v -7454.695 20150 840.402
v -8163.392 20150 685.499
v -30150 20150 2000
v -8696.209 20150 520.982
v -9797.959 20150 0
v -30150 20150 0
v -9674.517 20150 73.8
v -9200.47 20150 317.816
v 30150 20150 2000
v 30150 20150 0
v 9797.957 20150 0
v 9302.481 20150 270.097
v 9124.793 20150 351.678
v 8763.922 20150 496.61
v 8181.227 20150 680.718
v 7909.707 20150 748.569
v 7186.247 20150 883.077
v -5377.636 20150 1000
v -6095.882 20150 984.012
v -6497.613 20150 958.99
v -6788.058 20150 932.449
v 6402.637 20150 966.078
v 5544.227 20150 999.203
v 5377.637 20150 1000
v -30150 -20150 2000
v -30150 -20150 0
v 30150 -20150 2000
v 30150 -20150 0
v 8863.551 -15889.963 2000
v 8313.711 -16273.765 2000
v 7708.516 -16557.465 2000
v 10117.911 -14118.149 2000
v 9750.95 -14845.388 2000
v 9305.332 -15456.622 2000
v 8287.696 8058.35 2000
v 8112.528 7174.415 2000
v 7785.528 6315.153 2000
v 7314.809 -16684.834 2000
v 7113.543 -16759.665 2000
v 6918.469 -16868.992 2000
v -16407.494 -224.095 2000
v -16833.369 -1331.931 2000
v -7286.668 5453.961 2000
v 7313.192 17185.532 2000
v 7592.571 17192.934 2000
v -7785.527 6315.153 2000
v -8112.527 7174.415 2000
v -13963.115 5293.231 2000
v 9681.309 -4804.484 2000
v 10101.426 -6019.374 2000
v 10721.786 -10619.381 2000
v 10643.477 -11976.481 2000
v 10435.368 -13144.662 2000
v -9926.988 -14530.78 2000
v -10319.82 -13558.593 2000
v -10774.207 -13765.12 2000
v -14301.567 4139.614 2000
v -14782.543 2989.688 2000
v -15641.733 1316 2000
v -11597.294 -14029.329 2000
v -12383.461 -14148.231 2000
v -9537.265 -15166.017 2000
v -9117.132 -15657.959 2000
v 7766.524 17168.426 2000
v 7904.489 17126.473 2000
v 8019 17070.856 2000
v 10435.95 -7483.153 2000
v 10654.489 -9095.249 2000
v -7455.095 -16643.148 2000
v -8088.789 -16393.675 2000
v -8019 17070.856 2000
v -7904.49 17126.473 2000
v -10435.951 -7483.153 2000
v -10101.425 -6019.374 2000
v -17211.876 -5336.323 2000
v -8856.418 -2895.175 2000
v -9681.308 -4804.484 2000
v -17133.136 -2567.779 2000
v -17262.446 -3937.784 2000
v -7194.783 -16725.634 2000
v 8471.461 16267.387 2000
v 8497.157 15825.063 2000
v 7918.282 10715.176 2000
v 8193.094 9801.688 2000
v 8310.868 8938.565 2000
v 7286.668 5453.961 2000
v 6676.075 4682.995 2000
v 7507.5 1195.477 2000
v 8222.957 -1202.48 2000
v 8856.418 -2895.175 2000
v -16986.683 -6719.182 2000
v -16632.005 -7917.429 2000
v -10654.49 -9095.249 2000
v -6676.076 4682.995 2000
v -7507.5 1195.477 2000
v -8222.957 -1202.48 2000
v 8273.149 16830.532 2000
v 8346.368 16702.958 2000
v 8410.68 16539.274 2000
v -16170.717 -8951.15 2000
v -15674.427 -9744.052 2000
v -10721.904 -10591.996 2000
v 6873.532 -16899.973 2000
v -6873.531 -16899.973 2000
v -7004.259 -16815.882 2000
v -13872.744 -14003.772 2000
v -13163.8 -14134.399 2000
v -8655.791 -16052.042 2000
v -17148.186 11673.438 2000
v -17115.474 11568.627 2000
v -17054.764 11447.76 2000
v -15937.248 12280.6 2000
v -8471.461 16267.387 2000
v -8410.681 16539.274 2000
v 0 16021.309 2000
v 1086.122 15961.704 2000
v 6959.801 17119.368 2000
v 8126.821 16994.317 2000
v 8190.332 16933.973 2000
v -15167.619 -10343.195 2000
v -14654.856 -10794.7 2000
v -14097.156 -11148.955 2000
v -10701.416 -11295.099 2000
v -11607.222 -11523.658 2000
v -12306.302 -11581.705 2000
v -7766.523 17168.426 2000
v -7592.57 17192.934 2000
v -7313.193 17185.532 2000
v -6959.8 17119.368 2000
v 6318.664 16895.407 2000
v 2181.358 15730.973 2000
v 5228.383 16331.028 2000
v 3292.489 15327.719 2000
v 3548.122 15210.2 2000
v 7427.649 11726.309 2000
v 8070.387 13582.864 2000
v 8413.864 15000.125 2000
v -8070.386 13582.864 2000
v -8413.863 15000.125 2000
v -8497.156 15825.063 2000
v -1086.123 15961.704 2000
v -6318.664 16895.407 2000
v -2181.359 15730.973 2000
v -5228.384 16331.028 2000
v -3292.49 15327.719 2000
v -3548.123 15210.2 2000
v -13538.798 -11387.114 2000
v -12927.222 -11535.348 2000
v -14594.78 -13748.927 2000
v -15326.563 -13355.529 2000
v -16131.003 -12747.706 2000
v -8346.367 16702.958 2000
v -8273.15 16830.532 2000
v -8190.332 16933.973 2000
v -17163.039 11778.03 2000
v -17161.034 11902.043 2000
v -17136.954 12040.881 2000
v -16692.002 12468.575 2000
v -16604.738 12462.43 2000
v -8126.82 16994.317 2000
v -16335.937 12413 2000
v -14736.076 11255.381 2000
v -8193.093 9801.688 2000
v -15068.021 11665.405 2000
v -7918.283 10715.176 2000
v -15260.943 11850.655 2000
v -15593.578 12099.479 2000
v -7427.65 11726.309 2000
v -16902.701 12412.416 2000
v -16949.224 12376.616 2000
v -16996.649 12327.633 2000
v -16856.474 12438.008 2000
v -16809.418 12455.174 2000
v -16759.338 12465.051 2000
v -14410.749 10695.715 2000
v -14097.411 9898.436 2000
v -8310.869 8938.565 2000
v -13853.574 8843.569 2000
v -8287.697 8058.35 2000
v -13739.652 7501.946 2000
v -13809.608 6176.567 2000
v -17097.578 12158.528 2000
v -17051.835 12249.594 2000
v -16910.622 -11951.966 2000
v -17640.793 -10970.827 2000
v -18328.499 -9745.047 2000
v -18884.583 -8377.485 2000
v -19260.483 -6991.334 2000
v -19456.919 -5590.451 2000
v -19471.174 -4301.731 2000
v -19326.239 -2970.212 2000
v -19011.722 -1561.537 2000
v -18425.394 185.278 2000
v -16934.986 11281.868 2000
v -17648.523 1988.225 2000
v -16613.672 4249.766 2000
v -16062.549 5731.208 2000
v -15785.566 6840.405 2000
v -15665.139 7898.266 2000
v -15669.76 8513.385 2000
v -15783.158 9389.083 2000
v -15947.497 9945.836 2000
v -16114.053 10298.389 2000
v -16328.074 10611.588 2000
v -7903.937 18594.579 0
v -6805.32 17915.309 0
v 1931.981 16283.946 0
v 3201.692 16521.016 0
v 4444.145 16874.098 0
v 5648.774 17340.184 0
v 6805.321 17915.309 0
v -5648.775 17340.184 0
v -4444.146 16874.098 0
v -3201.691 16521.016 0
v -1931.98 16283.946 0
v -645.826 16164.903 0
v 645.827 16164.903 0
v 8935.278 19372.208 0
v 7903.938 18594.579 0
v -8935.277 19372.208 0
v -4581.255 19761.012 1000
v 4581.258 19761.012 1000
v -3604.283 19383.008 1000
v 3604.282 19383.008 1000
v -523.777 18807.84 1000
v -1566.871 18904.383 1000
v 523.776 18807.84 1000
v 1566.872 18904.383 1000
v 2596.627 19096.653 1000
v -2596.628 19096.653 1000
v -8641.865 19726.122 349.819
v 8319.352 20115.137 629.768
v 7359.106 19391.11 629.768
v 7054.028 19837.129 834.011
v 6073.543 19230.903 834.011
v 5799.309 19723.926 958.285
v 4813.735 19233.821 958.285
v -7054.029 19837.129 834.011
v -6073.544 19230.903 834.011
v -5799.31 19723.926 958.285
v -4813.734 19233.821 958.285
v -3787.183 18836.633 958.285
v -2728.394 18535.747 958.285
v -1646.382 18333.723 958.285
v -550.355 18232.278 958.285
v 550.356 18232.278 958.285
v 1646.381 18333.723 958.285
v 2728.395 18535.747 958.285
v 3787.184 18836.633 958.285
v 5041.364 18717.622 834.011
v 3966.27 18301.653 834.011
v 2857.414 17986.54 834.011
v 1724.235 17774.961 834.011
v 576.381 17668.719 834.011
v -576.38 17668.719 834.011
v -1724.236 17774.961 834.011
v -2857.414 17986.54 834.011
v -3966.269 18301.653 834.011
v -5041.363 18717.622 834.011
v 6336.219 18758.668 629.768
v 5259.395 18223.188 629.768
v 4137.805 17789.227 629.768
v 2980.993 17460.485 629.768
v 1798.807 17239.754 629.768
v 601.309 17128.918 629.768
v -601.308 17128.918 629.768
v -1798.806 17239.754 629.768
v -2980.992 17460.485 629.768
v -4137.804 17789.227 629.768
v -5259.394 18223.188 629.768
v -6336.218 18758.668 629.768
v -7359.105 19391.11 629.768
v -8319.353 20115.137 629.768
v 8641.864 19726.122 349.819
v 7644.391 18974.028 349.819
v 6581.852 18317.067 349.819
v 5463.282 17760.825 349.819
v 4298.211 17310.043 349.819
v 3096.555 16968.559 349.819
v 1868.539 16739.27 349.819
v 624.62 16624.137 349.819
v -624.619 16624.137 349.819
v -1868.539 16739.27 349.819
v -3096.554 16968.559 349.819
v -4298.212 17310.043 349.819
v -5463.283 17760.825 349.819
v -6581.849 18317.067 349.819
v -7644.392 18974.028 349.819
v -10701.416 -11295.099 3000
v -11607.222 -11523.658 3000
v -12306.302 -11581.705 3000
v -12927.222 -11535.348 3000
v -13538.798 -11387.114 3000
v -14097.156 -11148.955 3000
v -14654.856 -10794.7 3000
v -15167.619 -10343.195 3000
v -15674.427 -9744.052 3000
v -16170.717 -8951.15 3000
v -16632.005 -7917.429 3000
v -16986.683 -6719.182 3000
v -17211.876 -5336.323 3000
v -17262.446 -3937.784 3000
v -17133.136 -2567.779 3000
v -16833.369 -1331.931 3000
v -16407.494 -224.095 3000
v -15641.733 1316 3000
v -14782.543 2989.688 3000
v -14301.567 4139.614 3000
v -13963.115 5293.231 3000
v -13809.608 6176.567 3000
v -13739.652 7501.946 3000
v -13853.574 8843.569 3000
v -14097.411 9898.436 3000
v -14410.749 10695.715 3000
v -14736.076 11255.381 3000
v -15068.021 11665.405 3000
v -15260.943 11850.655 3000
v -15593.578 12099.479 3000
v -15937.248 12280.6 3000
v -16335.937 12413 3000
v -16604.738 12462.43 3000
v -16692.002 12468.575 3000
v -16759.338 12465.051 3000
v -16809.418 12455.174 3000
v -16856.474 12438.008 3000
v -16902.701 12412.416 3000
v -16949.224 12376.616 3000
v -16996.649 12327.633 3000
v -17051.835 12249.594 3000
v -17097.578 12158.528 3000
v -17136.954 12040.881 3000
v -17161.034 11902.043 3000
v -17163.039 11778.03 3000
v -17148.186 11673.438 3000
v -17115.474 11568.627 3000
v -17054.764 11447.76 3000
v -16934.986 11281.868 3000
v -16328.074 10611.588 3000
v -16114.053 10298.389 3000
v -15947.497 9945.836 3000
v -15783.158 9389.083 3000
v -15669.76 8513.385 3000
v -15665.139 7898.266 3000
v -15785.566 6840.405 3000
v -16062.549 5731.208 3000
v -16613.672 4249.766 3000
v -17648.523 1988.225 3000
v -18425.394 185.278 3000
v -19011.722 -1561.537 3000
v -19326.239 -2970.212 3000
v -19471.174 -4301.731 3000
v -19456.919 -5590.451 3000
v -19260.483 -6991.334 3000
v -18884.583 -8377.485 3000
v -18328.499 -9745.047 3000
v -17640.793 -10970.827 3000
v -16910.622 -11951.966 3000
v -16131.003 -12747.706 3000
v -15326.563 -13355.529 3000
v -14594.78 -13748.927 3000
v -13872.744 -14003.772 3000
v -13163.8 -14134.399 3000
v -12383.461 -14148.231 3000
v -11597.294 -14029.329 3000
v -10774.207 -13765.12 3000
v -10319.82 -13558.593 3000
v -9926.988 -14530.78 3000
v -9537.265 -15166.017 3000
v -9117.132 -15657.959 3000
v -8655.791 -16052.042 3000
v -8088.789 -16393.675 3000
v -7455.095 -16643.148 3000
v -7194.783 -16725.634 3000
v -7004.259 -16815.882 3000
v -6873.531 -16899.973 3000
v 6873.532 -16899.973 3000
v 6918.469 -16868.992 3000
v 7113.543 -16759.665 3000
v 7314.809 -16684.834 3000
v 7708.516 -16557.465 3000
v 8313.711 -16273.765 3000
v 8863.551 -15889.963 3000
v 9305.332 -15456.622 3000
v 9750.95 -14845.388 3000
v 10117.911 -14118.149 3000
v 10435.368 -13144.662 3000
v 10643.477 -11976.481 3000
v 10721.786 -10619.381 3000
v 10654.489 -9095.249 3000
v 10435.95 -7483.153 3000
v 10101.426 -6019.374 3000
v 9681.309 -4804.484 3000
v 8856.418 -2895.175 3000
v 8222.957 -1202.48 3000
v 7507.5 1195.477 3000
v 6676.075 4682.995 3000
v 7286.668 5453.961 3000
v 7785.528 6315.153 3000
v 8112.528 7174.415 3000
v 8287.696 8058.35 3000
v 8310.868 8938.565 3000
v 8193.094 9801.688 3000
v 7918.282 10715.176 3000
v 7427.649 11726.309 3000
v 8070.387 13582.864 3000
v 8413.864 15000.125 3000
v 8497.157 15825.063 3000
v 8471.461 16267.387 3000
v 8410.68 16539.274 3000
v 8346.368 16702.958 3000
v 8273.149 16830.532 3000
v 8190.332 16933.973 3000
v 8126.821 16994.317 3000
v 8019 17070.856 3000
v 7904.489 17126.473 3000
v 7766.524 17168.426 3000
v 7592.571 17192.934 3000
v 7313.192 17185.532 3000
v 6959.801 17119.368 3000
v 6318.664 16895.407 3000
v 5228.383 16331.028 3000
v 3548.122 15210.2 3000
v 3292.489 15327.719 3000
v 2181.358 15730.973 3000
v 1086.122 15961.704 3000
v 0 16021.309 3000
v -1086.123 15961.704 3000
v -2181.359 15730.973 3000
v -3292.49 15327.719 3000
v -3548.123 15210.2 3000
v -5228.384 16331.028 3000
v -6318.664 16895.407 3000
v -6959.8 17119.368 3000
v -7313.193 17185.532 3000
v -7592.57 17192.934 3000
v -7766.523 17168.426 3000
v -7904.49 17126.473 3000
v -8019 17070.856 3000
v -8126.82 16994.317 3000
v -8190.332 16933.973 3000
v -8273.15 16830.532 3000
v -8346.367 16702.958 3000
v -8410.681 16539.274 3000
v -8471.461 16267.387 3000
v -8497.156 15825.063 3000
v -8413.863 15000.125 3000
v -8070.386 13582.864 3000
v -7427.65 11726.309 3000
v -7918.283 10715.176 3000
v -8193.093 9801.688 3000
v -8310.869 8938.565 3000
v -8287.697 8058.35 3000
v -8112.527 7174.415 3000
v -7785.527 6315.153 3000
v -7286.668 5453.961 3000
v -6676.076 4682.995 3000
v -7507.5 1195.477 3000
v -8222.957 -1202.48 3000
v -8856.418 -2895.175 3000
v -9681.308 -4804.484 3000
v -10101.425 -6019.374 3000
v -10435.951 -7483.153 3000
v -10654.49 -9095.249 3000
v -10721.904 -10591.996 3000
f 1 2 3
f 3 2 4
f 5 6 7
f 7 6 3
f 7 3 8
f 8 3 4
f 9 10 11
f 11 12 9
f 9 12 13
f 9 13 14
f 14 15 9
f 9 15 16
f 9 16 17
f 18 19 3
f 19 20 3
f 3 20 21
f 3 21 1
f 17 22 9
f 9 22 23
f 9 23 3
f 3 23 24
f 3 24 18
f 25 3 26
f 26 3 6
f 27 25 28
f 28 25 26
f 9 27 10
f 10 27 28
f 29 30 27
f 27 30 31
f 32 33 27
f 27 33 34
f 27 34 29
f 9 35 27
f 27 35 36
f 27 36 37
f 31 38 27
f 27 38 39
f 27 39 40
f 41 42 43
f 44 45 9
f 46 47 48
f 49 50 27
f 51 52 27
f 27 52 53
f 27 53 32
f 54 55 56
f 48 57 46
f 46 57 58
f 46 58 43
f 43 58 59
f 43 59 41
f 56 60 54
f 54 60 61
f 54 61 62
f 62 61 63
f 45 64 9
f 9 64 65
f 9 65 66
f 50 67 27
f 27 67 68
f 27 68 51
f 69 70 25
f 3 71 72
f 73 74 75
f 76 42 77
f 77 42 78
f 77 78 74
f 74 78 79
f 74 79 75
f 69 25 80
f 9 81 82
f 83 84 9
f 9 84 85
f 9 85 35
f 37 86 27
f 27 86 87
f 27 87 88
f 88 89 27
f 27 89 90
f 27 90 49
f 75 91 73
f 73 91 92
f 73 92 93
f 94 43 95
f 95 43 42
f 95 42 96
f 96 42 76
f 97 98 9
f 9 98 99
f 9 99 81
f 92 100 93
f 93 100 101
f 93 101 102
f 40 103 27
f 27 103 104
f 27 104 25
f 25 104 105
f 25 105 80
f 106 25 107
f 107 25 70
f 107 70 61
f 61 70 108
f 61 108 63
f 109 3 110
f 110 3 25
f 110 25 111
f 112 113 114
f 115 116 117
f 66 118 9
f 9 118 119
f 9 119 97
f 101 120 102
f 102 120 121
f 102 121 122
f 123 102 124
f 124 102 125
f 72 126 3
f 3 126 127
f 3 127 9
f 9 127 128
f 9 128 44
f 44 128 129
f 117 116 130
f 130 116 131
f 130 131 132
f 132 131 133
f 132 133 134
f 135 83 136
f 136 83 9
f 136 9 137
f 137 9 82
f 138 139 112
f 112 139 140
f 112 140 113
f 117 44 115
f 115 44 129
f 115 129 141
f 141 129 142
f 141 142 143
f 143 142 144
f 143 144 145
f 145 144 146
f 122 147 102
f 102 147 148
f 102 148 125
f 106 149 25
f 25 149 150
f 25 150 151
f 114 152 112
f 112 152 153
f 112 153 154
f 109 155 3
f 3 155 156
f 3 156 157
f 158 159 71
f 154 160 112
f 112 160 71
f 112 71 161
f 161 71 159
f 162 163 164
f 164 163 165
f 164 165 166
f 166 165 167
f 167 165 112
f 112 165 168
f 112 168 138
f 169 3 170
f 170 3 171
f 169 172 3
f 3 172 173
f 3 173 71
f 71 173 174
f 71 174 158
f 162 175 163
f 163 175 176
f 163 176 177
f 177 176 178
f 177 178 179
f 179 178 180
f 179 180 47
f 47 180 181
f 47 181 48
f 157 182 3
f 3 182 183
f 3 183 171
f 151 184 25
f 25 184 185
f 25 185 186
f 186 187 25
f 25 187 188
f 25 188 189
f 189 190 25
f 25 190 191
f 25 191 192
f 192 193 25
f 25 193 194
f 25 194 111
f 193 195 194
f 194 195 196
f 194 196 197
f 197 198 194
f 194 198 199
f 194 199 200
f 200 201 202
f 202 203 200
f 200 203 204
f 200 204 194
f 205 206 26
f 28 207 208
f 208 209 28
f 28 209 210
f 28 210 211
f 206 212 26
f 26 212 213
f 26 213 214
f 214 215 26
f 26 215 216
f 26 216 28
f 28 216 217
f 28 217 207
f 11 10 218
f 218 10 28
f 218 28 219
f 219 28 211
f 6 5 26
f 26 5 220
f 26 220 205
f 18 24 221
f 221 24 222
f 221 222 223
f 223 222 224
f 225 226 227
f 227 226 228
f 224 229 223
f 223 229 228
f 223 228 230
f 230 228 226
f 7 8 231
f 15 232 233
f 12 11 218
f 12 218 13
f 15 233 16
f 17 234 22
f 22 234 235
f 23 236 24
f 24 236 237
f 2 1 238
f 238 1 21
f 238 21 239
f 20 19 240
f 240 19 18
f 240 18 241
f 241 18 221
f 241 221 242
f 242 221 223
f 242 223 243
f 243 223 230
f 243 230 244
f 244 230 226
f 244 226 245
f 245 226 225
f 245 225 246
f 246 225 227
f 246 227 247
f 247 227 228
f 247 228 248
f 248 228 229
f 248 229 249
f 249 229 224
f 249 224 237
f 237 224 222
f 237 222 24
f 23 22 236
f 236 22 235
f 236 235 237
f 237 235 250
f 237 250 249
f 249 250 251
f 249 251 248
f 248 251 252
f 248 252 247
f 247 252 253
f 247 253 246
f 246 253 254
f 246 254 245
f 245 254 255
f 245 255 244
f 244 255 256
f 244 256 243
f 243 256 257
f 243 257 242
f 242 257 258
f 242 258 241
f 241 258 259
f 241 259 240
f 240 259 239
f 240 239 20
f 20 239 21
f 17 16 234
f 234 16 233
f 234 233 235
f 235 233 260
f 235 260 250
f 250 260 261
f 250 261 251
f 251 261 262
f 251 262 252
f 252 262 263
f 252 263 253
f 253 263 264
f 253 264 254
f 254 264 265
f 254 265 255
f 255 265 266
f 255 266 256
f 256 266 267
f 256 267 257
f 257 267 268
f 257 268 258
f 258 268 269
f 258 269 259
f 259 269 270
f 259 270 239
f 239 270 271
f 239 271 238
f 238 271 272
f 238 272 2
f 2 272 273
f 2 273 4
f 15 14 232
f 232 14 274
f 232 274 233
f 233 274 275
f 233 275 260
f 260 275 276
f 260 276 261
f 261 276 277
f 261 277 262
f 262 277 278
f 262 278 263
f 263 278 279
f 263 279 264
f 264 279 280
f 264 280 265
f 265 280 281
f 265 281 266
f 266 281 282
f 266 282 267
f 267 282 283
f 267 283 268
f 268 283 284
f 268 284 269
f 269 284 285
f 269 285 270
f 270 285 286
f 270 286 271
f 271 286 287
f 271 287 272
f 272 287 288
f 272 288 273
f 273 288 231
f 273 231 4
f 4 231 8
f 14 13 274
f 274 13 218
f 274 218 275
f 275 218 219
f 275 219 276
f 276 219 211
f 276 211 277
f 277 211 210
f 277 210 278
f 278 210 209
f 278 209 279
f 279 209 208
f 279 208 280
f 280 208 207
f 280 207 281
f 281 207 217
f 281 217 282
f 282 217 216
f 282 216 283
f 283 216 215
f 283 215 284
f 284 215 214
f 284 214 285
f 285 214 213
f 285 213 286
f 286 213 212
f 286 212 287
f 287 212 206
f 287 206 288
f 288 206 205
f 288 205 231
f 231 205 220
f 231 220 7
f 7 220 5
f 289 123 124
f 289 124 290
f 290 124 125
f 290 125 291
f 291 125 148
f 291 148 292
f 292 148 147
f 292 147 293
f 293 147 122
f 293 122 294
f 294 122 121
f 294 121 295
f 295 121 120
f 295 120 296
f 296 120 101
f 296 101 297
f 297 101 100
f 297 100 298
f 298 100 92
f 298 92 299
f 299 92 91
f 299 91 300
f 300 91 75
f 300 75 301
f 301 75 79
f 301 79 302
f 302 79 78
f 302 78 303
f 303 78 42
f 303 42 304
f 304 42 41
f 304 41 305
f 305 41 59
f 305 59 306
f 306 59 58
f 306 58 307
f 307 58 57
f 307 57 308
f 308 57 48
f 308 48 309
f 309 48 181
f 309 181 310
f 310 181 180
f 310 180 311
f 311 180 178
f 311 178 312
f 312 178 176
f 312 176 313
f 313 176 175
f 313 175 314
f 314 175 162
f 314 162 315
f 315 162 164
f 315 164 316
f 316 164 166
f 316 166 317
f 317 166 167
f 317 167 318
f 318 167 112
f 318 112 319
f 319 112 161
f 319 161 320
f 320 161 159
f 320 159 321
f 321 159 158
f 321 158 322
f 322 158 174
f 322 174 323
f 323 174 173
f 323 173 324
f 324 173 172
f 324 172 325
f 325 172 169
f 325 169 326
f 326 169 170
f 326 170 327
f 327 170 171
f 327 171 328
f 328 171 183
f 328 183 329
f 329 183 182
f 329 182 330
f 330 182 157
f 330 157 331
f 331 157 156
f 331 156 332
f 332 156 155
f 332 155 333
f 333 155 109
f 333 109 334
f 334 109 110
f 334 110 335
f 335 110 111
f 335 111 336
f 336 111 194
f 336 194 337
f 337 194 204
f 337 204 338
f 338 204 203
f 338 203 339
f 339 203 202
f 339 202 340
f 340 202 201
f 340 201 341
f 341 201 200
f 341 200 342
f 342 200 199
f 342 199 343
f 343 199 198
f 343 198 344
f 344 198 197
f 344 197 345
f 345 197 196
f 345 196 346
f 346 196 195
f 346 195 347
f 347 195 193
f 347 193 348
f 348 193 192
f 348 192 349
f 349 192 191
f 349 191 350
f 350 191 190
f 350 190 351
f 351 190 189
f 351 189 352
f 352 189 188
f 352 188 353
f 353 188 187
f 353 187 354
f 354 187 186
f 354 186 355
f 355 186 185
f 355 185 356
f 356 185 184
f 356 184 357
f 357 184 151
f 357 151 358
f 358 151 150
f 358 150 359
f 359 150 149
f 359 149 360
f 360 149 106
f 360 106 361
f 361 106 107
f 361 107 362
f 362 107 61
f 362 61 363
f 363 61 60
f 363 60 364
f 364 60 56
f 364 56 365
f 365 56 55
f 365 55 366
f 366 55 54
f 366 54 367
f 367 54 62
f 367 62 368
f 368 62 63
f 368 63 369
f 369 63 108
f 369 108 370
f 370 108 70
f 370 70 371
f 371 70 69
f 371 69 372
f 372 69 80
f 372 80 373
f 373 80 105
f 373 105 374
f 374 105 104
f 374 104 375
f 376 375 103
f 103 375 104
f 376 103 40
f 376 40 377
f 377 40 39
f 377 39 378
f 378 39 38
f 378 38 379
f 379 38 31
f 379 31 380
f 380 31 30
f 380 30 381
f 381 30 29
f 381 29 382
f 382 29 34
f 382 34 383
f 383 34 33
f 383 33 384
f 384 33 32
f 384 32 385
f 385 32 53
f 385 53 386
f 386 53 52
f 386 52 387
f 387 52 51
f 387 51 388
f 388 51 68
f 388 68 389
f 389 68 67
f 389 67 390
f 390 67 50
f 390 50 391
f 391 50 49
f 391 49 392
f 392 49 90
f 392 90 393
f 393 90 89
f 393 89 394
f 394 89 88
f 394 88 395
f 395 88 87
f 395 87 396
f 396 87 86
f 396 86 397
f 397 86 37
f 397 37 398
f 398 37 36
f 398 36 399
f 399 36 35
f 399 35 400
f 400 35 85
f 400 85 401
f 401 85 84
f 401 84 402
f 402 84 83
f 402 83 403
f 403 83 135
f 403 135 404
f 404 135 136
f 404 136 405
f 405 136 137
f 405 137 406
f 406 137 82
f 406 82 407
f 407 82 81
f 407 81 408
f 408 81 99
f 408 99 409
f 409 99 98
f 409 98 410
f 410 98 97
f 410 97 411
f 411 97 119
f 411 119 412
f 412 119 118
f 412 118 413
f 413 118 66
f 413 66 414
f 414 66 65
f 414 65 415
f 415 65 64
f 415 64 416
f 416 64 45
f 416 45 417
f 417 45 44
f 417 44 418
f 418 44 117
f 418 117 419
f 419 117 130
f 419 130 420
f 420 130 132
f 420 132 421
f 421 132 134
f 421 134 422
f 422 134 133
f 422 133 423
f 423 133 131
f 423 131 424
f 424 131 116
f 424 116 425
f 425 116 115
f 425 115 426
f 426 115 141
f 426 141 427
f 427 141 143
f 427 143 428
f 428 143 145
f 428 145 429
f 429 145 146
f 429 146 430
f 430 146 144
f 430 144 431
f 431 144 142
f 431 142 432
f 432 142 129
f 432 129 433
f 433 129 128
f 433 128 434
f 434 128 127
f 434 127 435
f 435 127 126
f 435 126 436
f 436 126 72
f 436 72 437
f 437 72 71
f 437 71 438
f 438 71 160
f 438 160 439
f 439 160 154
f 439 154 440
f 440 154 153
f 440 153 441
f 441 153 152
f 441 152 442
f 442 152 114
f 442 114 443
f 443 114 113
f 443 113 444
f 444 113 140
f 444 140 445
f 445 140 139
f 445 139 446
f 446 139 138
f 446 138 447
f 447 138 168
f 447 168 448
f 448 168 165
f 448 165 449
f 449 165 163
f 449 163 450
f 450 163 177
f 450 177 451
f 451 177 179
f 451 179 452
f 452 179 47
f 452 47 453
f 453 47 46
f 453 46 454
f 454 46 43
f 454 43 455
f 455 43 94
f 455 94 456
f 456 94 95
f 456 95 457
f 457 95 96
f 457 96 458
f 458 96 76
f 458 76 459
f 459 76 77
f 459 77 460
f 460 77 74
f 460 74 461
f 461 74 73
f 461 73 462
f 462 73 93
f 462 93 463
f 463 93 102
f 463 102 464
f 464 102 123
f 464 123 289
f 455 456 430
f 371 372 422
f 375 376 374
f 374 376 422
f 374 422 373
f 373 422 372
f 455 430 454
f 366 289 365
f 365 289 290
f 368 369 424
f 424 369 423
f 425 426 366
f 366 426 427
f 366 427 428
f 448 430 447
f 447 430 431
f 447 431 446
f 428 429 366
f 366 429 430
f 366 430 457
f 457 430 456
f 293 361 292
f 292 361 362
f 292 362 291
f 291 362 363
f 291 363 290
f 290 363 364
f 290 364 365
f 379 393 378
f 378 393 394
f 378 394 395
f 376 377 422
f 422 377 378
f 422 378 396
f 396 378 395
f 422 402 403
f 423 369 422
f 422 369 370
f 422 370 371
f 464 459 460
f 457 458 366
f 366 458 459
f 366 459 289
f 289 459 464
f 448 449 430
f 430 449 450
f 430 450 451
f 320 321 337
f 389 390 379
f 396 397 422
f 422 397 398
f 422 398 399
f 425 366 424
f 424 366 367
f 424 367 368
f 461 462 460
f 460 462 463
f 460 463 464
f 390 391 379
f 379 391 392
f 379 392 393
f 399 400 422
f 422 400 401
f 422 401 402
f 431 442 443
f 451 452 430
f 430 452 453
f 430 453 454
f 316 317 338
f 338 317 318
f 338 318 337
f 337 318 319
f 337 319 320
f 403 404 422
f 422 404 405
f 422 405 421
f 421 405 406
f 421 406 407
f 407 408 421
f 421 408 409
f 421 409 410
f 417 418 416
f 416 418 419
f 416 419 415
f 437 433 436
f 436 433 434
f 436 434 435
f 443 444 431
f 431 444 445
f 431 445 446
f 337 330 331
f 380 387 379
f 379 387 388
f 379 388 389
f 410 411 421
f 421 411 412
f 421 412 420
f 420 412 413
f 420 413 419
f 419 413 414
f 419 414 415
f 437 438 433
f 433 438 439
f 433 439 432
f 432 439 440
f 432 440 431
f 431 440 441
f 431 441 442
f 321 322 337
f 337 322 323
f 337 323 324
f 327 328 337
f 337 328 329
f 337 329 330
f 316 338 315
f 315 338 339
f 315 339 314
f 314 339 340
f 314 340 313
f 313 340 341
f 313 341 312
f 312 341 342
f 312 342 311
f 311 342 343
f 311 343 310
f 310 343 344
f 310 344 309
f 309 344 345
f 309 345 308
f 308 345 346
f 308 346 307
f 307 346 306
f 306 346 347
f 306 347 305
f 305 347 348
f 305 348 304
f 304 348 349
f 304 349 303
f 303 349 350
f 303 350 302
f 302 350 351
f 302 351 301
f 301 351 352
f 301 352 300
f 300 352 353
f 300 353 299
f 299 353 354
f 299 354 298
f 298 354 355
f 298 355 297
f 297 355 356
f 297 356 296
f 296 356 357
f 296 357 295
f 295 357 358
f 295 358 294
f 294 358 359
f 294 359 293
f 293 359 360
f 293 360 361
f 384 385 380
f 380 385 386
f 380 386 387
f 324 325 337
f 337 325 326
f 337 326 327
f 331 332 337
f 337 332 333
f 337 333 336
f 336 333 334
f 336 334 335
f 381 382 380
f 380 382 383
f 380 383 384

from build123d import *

# Parameters (mm, degrees)
MAINPLATE_DEPTH     = 2000
NOTCH_START         = 1000
NOTCH_DEPTH         = 1000
NOTCHFILLET_R       = 4000
BOSS_EXTRUDE1_DEPTH = 1000


with BuildPart() as part:
    # Sketch1 → MainPlate (new body)
    with BuildSketch(Plane.XY):
        with BuildLine():
            Line((-9797.958971133, 20150), (-30150, 20150))
            Line((-30150, 20150), (-30150, -20150))
            Line((-30150, -20150), (30150, -20150))
            Line((30150, -20150), (30150, 20150))
            Line((30150, 20150), (9797.958971133, 20150))
            ThreePointArc((9797.958971133, 20150), (0, 16150), (-9797.958971133, 20150))
        make_face()
    extrude(amount=MAINPLATE_DEPTH)

    # Sketch1<3> → Notch (add)
    with BuildSketch(Plane.XY.offset(NOTCH_START)):
        with BuildLine():
            Line((9797.958971133, 20150), (-9797.958971133, 20150))
            ThreePointArc((-9797.958971133, 20150), (0, 16150), (9797.958971133, 20150))
        make_face()
    extrude(amount=NOTCH_DEPTH)

    # NotchFillet
    # the kernel refuses this fillet: 4000 mm, written as the material it adds along each edge
    with BuildSketch(Plane(origin=(0, 30150, 1000), x_dir=(-0.9482993587700965, -0.3173772615614165, 0), z_dir=(-0.3173772615614165, 0.9482993587700965, 0))) as notchfillet_piece_1_section:
        with BuildLine():
            CenterArc((11354.248688935, -4000), NOTCHFILLET_R, 48.590377891, 41.409622109)
            Line((11354.248688935, 0), (11354.248688935, 80))
            Line((11354.248688935, 80), (14000, 80))
            Line((14000, 80), (14080, 0))
            ThreePointArc((14080, 0), (14080, -500), (14052.915026221, -940))
            Line((14052.915026221, -940), (14000, -1000))
        make_face()
    notchfillet_piece_1 = revolve(axis=Axis((0, 30150, 1000), (0, 0, 1)), revolution_arc=142.991226577, mode=Mode.PRIVATE)
    notchfillet_piece_1 = split(notchfillet_piece_1, bisect_by=Plane(origin=(0, 20150, 767.581558225), z_dir=(0, -1, 0)), keep=Keep.TOP, mode=Mode.PRIVATE)
    add(notchfillet_piece_1)

    # Sketch2 → Boss-Extrude1 (add)
    with BuildSketch(Plane.XY.offset(2000)):
        with BuildLine():
            add(Edge.make_bspline(
                [(-10701.415402451, -11295.099090351), (-15811.502818911, -13035.48604603), (-19505.298297344, -2003.070548065), (-12595.144077247, 4316.28380771), (-14193.330361108, 12218.868499182), (-17013.967280119, 12506.857365661), (-17294.09711996, 11747.511080652), (-16814.72253338, 11104.548568177), (-16001.341117572, 10377.595003792), (-15085.54328611, 6773.932209018), (-18212.203512754, 1514.956439448), (-21021.395070297, -7650.694259071), (-15118.803791461, -15967.321888991), (-10319.820482304, -13558.592370043)],
                knots=[0, 0, 0, 0, 0.209738333, 0.351877253, 0.464529447, 0.468874967, 0.481926302, 0.491092137, 0.50699965, 0.534380959, 0.661271137, 0.783505043, 1, 1, 1, 1], degree=3))
            add(Edge.make_bspline(
                [(-10701.415402451, -11295.099090351), (-10657.682935176, -12074.807448423), (-10540.914694203, -12847.81911371), (-10319.820482304, -13558.592370043)],
                knots=[0.712539323, 0.712539323, 0.712539323, 0.712539323, 0.801372914, 0.801372914, 0.801372914, 0.801372914], degree=3))
        make_face()
        with BuildLine():
            Line((0, -16899.973414605), (0, 16021.310496988))
            add(Edge.make_bspline(
                [(0, 16021.310496988), (-1184.841242541, 16054.065359953), (-2412.012387281, 15753.809481573), (-3548.122697587, 15210.200338564)],
                knots=[0, 0, 0, 0, 0.22628621, 0.22628621, 0.22628621, 0.22628621], degree=3))
            add(Edge.make_bspline(
                [(-3548.122697587, 15210.200338564), (-5144.389097299, 14446.414461707), (-6560.892058077, 13202.224248588), (-7427.649845507, 11726.309851782)],
                knots=[0.22628621, 0.22628621, 0.22628621, 0.22628621, 0.544224592, 0.544224592, 0.544224592, 0.544224592], degree=3))
            add(Edge.make_bspline(
                [(-7427.649845507, 11726.309851782), (-8670.176403991, 9610.536722684), (-8782.966148127, 7018.565977353), (-6676.075371015, 4682.994233731)],
                knots=[0.544224592, 0.544224592, 0.544224592, 0.544224592, 1, 1, 1, 1], degree=3))
            add(Edge.make_bspline(
                [(-6676.075371015, 4682.994233731), (-8517.118800664, -3858.031901679), (-9941.897389924, -3334.017600063), (-10790.987152988, -9698.119846038), (-10701.415402451, -11295.099090351)],
                knots=[0, 0, 0, 0, 0.530592574, 0.712539323, 0.712539323, 0.712539323, 0.712539323], degree=3))
            add(Edge.make_bspline(
                [(-10701.415402451, -11295.099090351), (-10657.682935176, -12074.807448423), (-10540.914694203, -12847.81911371), (-10319.820482304, -13558.592370043)],
                knots=[0.712539323, 0.712539323, 0.712539323, 0.712539323, 0.801372914, 0.801372914, 0.801372914, 0.801372914], degree=3))
            add(Edge.make_bspline(
                [(-10319.820482304, -13558.592370043), (-9871.552043124, -14999.684904718), (-8904.248206782, -16306.785010118), (-7098.201928611, -16739.734624268), (-6873.52996804, -16899.973414605)],
                knots=[0.801372914, 0.801372914, 0.801372914, 0.801372914, 0.981482989, 1, 1, 1, 1], degree=3))
            Line((-6873.52996804, -16899.973414605), (0, -16899.973414605))
        make_face()
        with BuildLine():
            add(Edge.make_bspline(
                [(0, 16021.310496988), (1184.841242541, 16054.065359953), (2412.012387281, 15753.809481573), (3548.122697587, 15210.200338564)],
                knots=[0, 0, 0, 0, 0.22628621, 0.22628621, 0.22628621, 0.22628621], degree=3))
            Line((0, 16021.310496988), (0, -16899.973414605))
            Line((0, -16899.973414605), (6873.52996804, -16899.973414605))
            add(Edge.make_bspline(
                [(6676.075371015, 4682.994233731), (8517.118800664, -3858.031901679), (10479.671466803, -3136.231565485), (11366.358658066, -15716.562166573), (7098.201928611, -16739.734624268), (6873.52996804, -16899.973414605)],
                knots=[0, 0, 0, 0, 0.530592574, 0.981482989, 1, 1, 1, 1], degree=3))
            add(Edge.make_bspline(
                [(7427.649845507, 11726.309851782), (8670.176403991, 9610.536722684), (8782.966148127, 7018.565977353), (6676.075371015, 4682.994233731)],
                knots=[0.544224592, 0.544224592, 0.544224592, 0.544224592, 1, 1, 1, 1], degree=3))
            add(Edge.make_bspline(
                [(3548.122697587, 15210.200338564), (5144.389097299, 14446.414461707), (6560.892058077, 13202.224248588), (7427.649845507, 11726.309851782)],
                knots=[0.22628621, 0.22628621, 0.22628621, 0.22628621, 0.544224592, 0.544224592, 0.544224592, 0.544224592], degree=3))
        make_face()
        with BuildLine():
            add(Edge.make_bspline(
                [(3548.122697587, 15210.200338564), (10798.626394755, 20491.68805006), (7427.649845507, 11726.309851782)],
                knots=[0, 0, 0, 1, 1, 1], degree=2))
            add(Edge.make_bspline(
                [(3548.122697587, 15210.200338564), (5144.389097299, 14446.414461707), (6560.892058077, 13202.224248588), (7427.649845507, 11726.309851782)],
                knots=[0.22628621, 0.22628621, 0.22628621, 0.22628621, 0.544224592, 0.544224592, 0.544224592, 0.544224592], degree=3))
        make_face()
        with BuildLine():
            add(Edge.make_bspline(
                [(-3548.122697587, 15210.200338564), (-5144.389097299, 14446.414461707), (-6560.892058077, 13202.224248588), (-7427.649845507, 11726.309851782)],
                knots=[0.22628621, 0.22628621, 0.22628621, 0.22628621, 0.544224592, 0.544224592, 0.544224592, 0.544224592], degree=3))
            add(Edge.make_bspline(
                [(-3548.122697587, 15210.200338564), (-10798.626394755, 20491.68805006), (-7427.649845507, 11726.309851782)],
                knots=[0, 0, 0, 1, 1, 1], degree=2))
        make_face()
    extrude(amount=BOSS_EXTRUDE1_DEPTH)


solid = part.part
